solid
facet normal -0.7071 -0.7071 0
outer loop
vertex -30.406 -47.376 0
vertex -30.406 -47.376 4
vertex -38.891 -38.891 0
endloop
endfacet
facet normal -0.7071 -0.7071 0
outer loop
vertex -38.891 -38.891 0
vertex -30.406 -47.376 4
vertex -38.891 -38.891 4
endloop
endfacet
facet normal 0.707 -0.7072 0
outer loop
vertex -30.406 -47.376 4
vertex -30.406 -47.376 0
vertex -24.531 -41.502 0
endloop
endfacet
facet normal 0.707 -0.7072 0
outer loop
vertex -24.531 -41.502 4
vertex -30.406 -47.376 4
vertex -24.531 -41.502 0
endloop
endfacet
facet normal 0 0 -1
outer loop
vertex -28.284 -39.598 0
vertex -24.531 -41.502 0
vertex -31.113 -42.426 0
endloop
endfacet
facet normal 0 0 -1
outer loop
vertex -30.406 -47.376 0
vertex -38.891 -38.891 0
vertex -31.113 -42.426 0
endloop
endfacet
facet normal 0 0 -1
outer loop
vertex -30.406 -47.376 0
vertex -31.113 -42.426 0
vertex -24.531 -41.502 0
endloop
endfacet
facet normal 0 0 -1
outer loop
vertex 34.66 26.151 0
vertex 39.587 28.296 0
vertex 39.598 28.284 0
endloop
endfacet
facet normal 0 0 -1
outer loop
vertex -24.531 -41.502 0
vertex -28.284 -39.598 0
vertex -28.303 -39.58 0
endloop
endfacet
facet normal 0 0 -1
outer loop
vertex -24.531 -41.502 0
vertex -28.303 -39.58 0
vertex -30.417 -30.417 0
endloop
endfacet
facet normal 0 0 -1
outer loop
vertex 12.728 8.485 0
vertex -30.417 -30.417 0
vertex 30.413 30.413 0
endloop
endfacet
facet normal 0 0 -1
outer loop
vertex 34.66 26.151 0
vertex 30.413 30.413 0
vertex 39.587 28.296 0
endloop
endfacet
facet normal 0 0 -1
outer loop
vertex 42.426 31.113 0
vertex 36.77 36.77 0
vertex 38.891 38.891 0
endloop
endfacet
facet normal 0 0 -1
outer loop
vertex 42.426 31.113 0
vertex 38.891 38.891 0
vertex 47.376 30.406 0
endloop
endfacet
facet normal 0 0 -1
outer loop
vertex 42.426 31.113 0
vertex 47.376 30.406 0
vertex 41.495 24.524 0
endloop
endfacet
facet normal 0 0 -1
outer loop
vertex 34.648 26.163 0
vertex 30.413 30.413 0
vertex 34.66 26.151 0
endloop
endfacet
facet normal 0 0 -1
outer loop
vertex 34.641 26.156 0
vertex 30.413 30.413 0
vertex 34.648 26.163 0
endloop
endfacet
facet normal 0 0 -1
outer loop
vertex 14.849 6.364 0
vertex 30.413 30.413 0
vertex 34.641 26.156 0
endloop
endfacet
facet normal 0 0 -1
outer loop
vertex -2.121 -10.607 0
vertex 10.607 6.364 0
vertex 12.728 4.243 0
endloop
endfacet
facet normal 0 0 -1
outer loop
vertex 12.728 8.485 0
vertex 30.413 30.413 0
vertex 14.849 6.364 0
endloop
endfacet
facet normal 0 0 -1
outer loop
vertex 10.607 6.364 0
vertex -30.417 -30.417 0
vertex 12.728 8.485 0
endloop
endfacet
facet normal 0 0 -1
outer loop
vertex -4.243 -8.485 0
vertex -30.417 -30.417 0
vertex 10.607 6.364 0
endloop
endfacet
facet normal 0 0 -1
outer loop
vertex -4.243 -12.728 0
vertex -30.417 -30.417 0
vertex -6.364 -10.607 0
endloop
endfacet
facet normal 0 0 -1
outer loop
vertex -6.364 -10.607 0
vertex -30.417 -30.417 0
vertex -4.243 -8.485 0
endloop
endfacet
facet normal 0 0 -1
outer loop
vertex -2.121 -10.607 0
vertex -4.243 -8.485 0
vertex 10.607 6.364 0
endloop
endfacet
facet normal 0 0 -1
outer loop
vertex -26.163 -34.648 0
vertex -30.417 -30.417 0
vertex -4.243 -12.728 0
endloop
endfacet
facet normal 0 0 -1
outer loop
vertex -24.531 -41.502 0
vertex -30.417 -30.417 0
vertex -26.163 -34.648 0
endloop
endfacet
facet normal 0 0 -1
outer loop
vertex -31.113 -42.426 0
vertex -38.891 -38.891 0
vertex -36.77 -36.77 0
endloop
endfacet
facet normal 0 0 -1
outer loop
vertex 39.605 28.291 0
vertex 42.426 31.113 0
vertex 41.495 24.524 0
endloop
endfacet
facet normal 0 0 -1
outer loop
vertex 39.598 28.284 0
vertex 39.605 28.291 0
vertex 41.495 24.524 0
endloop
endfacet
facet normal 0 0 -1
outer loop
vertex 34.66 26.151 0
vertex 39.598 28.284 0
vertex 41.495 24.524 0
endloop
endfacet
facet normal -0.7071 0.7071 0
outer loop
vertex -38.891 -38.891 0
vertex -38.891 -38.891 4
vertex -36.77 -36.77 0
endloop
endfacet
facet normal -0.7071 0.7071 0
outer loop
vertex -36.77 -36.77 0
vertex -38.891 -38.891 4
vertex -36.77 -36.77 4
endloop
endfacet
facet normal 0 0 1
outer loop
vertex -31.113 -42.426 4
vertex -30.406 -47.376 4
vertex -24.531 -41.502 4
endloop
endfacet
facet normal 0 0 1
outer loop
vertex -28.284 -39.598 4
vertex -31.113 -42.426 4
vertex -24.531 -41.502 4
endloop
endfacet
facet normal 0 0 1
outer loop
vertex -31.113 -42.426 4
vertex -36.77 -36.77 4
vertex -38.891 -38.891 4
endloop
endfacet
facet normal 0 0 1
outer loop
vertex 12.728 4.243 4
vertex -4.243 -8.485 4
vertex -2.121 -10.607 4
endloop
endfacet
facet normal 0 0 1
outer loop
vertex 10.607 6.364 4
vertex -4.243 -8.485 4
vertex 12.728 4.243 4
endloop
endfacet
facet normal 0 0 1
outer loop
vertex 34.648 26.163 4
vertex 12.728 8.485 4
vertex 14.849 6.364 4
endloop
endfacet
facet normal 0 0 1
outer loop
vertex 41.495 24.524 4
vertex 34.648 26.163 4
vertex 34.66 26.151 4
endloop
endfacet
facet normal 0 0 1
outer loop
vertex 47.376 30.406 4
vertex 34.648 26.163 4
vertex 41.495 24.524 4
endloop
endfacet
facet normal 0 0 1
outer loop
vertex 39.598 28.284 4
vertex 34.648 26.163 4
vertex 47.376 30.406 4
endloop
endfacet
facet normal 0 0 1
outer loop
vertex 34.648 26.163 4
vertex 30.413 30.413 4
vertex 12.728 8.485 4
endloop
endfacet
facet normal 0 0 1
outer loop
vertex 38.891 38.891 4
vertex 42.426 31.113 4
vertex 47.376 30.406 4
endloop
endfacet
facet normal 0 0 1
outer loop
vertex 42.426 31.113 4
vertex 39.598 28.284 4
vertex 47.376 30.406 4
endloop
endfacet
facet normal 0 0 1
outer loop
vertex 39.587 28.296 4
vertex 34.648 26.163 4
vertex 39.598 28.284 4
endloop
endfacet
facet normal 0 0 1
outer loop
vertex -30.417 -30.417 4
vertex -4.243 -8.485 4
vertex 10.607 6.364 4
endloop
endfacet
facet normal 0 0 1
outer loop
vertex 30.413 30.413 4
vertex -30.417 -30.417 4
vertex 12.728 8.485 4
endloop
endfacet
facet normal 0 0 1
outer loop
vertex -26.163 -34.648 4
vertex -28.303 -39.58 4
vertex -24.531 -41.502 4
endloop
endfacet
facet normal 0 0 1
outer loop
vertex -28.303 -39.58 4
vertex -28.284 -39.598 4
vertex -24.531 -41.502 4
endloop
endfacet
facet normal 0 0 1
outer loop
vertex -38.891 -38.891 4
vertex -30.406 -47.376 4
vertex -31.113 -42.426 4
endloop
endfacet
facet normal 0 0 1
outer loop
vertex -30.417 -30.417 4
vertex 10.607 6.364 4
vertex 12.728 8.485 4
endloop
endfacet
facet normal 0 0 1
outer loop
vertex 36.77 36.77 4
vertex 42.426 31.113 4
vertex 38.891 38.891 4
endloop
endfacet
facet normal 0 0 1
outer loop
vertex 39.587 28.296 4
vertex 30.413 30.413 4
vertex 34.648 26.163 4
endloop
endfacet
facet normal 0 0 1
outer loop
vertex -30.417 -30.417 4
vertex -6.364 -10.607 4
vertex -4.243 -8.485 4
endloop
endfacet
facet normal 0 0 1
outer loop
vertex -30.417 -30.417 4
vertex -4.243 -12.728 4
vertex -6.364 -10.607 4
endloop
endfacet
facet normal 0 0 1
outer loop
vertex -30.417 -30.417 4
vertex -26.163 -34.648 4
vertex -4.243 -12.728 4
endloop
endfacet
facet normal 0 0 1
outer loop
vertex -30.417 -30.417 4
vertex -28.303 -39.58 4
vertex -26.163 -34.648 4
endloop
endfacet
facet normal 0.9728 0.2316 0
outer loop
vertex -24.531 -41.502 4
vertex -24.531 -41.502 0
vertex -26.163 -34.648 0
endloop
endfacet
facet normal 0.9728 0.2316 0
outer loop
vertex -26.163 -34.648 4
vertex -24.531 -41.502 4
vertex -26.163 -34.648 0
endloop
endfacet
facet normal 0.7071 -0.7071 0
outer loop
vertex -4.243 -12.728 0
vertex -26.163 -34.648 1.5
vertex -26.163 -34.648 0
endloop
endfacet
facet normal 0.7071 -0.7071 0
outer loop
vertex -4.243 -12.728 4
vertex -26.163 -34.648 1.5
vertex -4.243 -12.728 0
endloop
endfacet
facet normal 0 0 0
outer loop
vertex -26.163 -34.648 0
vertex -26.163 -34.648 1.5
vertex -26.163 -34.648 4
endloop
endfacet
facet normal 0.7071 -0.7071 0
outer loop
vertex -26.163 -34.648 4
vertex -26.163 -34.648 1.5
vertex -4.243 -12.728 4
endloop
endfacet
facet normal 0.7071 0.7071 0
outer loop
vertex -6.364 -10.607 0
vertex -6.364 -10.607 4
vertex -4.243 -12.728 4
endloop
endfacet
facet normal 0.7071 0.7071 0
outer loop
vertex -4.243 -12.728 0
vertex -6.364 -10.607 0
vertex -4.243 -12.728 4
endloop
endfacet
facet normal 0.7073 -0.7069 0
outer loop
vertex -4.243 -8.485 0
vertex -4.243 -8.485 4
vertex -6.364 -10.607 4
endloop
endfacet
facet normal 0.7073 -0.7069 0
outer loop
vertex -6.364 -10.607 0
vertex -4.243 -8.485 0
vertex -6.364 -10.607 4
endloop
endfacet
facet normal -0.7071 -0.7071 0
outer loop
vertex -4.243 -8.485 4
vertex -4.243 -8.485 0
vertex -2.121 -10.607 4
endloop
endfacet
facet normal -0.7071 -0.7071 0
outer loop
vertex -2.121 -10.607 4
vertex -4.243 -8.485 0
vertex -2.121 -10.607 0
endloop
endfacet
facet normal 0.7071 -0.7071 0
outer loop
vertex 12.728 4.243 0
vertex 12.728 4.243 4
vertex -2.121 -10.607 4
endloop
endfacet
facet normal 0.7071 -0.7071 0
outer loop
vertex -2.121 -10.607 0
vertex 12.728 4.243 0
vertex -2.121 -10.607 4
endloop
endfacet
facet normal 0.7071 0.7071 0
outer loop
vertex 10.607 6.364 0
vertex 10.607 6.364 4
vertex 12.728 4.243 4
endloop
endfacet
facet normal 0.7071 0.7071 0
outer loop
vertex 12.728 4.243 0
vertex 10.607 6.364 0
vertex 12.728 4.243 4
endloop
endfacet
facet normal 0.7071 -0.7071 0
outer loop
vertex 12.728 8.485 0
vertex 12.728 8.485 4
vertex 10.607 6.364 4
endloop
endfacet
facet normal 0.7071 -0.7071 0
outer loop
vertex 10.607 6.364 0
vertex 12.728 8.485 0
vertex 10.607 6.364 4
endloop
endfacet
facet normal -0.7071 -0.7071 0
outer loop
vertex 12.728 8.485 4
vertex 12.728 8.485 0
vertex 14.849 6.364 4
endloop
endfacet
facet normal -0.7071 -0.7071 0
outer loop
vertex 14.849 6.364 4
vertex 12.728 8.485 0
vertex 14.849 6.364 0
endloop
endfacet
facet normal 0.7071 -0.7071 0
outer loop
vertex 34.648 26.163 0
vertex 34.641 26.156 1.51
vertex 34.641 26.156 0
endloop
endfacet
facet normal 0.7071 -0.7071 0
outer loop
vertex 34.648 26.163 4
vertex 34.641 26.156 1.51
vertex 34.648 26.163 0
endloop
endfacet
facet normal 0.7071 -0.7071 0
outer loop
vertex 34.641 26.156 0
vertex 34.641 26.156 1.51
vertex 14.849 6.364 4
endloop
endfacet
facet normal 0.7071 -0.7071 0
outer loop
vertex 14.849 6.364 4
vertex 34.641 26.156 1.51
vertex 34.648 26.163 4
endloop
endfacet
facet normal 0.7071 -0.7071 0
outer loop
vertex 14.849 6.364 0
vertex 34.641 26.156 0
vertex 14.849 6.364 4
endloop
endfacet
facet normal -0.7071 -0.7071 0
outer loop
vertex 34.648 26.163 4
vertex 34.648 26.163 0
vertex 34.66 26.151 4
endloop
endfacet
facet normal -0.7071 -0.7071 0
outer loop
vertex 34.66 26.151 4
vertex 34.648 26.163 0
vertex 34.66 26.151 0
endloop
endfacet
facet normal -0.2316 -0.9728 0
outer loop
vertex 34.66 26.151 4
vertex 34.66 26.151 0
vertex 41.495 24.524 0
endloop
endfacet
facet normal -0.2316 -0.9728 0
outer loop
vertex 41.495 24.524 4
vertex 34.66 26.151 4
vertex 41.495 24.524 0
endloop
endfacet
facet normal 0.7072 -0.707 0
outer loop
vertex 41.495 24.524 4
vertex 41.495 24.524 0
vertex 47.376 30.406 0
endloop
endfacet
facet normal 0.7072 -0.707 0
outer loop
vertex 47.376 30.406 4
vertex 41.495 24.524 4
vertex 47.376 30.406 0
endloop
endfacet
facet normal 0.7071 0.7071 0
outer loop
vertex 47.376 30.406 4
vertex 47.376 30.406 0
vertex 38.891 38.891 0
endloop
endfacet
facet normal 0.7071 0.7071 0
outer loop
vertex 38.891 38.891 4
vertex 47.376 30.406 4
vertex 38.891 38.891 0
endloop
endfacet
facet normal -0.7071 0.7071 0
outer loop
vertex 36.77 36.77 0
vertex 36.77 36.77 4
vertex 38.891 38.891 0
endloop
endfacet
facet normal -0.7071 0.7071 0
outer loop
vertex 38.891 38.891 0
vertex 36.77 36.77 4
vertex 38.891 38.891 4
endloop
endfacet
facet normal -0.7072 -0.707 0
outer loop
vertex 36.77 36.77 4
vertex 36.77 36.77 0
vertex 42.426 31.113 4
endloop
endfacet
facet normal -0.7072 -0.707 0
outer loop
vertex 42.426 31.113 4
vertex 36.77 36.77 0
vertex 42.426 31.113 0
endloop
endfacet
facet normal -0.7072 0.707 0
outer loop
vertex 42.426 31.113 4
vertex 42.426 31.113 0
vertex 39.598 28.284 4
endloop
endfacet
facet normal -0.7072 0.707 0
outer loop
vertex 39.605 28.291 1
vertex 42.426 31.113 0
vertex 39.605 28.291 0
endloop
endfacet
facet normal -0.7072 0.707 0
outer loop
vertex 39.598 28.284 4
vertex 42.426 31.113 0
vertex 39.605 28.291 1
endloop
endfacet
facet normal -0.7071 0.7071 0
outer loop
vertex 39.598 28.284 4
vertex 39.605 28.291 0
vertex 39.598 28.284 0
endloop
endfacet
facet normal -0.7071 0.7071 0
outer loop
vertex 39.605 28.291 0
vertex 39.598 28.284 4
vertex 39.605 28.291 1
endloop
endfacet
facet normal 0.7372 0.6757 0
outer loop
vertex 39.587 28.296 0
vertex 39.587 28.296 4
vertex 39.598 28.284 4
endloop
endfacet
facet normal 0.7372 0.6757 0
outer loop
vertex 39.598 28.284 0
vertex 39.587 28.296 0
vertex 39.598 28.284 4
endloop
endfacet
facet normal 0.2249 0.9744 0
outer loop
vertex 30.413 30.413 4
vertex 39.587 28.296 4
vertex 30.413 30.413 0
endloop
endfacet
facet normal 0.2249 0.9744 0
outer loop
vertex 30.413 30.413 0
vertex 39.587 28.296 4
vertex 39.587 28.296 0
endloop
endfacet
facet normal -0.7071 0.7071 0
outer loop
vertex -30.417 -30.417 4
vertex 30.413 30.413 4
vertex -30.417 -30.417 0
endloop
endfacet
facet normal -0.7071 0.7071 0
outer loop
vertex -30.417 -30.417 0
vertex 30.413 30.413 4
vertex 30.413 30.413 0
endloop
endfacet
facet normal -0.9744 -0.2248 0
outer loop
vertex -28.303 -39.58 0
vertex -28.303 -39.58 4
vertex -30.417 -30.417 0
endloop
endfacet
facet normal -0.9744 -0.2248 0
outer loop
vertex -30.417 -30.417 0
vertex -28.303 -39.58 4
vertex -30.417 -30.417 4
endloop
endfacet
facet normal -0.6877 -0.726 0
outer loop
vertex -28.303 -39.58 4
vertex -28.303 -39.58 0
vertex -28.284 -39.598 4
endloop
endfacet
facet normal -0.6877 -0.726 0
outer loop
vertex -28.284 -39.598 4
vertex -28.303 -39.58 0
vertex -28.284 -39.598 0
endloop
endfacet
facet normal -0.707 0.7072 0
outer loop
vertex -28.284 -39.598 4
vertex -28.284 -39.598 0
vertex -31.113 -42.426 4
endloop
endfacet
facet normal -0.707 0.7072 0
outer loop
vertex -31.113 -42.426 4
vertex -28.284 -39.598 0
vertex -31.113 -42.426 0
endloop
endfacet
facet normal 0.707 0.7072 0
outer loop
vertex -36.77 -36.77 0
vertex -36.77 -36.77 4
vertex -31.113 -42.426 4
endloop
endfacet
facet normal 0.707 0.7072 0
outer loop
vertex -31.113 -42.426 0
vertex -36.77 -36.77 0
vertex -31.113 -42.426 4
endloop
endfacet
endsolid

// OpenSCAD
// file: shapes.scad
/*
 *  OpenSCAD Shapes Library (www.openscad.at)
 *  Copyright (C) 2009  Catarina Mota <clifford@clifford.at>
 *
 *  This program is free software; you can redistribute it and/or modify
 *  it under the terms of the GNU General Public License as published by
 *  the Free Software Foundation; either version 2 of the License, or
 *  (at your option) any later version.
 *
 *  This program is distributed in the hope that it will be useful,
 *  but WITHOUT ANY WARRANTY; without even the implied warranty of
 *  MERCHANTABILITY or FITNESS FOR A PARTICULAR PURPOSE.  See the
 *  GNU General Public License for more details.
 *
 *  You should have received a copy of the GNU General Public License
 *  along with this program; if not, write to the Free Software
 *  Foundation, Inc., 59 Temple Place, Suite 330, Boston, MA  02111-1307  USA
 *
*/


//box(width, height, depth);
//roundedBox(width, height, depth, factor);
//cone(height, radius);
//oval(width, height, depth);
//tube(height, radius, wall);
//ovalTube(width, height, depth, wall);
//hexagon(height, depth);
//octagon(height, depth);
//dodecagon(height, depth);
//hexagram(height, depth);
//rightTriangle(adjacent, opposite, depth);
//equiTriangle(side, depth);
//12ptStar(height, depth);

//----------------------

//roundedBox(120, 60, 3, 8);

//----------------------

module box(w,h,d) {
	scale ([w,h,d]) cube(1, true);
}

module roundedBox(w,h,d,f){
	difference(){
		box(w,h,d);
		translate([-w/2,h/2,0]) cube(w/(f/2),true);
		translate([w/2,h/2,0]) cube(w/(f/2),true);
		translate([-w/2,-h/2,0]) cube(w/(f/2),true);
		translate([w/2,-h/2,0]) cube(w/(f/2),true);
	}
	translate([-w/2+w/f,h/2-w/f,-d/2]) cylinder(d,w/f, w/f);
	translate([w/2-w/f,h/2-w/f,-d/2]) cylinder(d,w/f, w/f);
	translate([-w/2+w/f,-h/2+w/f,-d/2]) cylinder(d,w/f, w/f);
	translate([w/2-w/f,-h/2+w/f,-d/2]) cylinder(d,w/f, w/f);
}

module cone(height, radius) {
		cylinder(height, radius, 0);
}

module oval(w,h,d) {
	scale ([w/100, h/100, 1]) cylinder(d, 50, 50);
}

module tube(height, radius, wall) {
	difference(){
		cylinder(height, radius, radius);
		cylinder(height, radius-wall, radius-wall);
	}
}

module ovalTube(w,h,d,wall) {
	difference(){
		scale ([w/100, h/100, 1]) cylinder(d, 50, 50);
		scale ([w/100, h/100, 1]) cylinder(d, 50-wall, 50-wall);
	}
}

module hexagon(height, depth) {
	boxWidth=height/1.75;
		union(){
			box(boxWidth, height, depth);
			rotate([0,0,60]) box(boxWidth, height, depth);
			rotate([0,0,-60]) box(boxWidth, height, depth);
		}
}

module octagon(height, depth) {
	intersection(){
		box(height, height, depth);
		rotate([0,0,45]) box(height, height, depth);
	}
}

module dodecagon(height, depth) {
	intersection(){
		hexagon(height, depth);
		rotate([0,0,90]) hexagon(height, depth);
	}
}

module hexagram(height, depth) {
	boxWidth=height/1.75;
	intersection(){
		box(height, boxWidth, depth);
		rotate([0,0,60]) box(height, boxWidth, depth);
	}
	intersection(){
		box(height, boxWidth, depth);
		rotate([0,0,-60]) box(height, boxWidth, depth);
	}
	intersection(){
		rotate([0,0,60]) box(height, boxWidth, depth);
		rotate([0,0,-60]) box(height, boxWidth, depth);
	}
}

module rightTriangle(adjacent, opposite, depth) {
	difference(){
		translate([-adjacent/2,opposite/2,0]) box(adjacent, opposite, depth);
		translate([-adjacent,0,0]){
			rotate([0,0,atan(opposite/adjacent)]) dislocateBox(adjacent*4, opposite, depth);
		}
	}
}

module equiTriangle(side, depth) {
	difference(){
		translate([-side/2,side/2,0]) box(side, side, depth);
		rotate([0,0,30]) dislocateBox(side*2, side, depth);
		translate([-side,0,0]){
			rotate([0,0,60]) dislocateBox(side*2, side, depth);
		}
	}
}

module 12ptStar(height, depth) {
	starNum=3;
	starAngle=360/starNum;
	for (s=[1:starNum]){
		rotate([0, 0, s*starAngle]) box(height, height, depth);
	}
}

//-----------------------
//MOVES THE ROTATION AXIS OF A BOX FROM ITS CENTER TO THE BOTTOM LEFT CORNER
module dislocateBox(w,h,d){
	translate([w/2,h,0]){
		difference(){
			box(w, h*2, d+1);
			translate([-w,0,0]) box(w, h*2, d+1);
		}
	}
}
// main file
include <shapes.scad>  // using Catarina Mota's shapes library
//translate ([0,0,0]) cross_braces ();
//translate ([0,35,0]) cross_braces ();
rotate ([0,0,45]) sided();

module sided ()
{
difference ()
{
	rotate ([90,0,0]) cross_braces ();
	rotate ([90,0,0]) translate ([12,0,3]) cube ([3,4,5]);
	rotate ([90,0,0]) translate ([-12,0,3]) cube ([3,4,5]);

}
}

module cross_braces ()
{
union ()
{
	difference ()
	{
		translate ([-55,0,0]) cube ([110,4,12]);
		translate ([-43,0,6]) cube (86,5,6);
		translate ([-43,1.5,12.5]) rotate ([90,270,0]) rightTriangle(6.5,4,5);
		translate ([-52,0,0]) cube ([4,5,8]);
		translate ([-48.01,1,-0.01]) rotate ([90,90,0]) rightTriangle(8,5,6.01);
		translate ([42.99,1.51,12.5]) rotate ([270,270,0]) rightTriangle(6.5,4,5);
		translate ([48,0,0]) cube ([4,5,8]);
		translate ([48.01,1,0]) rotate ([270,90,0]) rightTriangle(8,5,6.01);
	}
}
}
